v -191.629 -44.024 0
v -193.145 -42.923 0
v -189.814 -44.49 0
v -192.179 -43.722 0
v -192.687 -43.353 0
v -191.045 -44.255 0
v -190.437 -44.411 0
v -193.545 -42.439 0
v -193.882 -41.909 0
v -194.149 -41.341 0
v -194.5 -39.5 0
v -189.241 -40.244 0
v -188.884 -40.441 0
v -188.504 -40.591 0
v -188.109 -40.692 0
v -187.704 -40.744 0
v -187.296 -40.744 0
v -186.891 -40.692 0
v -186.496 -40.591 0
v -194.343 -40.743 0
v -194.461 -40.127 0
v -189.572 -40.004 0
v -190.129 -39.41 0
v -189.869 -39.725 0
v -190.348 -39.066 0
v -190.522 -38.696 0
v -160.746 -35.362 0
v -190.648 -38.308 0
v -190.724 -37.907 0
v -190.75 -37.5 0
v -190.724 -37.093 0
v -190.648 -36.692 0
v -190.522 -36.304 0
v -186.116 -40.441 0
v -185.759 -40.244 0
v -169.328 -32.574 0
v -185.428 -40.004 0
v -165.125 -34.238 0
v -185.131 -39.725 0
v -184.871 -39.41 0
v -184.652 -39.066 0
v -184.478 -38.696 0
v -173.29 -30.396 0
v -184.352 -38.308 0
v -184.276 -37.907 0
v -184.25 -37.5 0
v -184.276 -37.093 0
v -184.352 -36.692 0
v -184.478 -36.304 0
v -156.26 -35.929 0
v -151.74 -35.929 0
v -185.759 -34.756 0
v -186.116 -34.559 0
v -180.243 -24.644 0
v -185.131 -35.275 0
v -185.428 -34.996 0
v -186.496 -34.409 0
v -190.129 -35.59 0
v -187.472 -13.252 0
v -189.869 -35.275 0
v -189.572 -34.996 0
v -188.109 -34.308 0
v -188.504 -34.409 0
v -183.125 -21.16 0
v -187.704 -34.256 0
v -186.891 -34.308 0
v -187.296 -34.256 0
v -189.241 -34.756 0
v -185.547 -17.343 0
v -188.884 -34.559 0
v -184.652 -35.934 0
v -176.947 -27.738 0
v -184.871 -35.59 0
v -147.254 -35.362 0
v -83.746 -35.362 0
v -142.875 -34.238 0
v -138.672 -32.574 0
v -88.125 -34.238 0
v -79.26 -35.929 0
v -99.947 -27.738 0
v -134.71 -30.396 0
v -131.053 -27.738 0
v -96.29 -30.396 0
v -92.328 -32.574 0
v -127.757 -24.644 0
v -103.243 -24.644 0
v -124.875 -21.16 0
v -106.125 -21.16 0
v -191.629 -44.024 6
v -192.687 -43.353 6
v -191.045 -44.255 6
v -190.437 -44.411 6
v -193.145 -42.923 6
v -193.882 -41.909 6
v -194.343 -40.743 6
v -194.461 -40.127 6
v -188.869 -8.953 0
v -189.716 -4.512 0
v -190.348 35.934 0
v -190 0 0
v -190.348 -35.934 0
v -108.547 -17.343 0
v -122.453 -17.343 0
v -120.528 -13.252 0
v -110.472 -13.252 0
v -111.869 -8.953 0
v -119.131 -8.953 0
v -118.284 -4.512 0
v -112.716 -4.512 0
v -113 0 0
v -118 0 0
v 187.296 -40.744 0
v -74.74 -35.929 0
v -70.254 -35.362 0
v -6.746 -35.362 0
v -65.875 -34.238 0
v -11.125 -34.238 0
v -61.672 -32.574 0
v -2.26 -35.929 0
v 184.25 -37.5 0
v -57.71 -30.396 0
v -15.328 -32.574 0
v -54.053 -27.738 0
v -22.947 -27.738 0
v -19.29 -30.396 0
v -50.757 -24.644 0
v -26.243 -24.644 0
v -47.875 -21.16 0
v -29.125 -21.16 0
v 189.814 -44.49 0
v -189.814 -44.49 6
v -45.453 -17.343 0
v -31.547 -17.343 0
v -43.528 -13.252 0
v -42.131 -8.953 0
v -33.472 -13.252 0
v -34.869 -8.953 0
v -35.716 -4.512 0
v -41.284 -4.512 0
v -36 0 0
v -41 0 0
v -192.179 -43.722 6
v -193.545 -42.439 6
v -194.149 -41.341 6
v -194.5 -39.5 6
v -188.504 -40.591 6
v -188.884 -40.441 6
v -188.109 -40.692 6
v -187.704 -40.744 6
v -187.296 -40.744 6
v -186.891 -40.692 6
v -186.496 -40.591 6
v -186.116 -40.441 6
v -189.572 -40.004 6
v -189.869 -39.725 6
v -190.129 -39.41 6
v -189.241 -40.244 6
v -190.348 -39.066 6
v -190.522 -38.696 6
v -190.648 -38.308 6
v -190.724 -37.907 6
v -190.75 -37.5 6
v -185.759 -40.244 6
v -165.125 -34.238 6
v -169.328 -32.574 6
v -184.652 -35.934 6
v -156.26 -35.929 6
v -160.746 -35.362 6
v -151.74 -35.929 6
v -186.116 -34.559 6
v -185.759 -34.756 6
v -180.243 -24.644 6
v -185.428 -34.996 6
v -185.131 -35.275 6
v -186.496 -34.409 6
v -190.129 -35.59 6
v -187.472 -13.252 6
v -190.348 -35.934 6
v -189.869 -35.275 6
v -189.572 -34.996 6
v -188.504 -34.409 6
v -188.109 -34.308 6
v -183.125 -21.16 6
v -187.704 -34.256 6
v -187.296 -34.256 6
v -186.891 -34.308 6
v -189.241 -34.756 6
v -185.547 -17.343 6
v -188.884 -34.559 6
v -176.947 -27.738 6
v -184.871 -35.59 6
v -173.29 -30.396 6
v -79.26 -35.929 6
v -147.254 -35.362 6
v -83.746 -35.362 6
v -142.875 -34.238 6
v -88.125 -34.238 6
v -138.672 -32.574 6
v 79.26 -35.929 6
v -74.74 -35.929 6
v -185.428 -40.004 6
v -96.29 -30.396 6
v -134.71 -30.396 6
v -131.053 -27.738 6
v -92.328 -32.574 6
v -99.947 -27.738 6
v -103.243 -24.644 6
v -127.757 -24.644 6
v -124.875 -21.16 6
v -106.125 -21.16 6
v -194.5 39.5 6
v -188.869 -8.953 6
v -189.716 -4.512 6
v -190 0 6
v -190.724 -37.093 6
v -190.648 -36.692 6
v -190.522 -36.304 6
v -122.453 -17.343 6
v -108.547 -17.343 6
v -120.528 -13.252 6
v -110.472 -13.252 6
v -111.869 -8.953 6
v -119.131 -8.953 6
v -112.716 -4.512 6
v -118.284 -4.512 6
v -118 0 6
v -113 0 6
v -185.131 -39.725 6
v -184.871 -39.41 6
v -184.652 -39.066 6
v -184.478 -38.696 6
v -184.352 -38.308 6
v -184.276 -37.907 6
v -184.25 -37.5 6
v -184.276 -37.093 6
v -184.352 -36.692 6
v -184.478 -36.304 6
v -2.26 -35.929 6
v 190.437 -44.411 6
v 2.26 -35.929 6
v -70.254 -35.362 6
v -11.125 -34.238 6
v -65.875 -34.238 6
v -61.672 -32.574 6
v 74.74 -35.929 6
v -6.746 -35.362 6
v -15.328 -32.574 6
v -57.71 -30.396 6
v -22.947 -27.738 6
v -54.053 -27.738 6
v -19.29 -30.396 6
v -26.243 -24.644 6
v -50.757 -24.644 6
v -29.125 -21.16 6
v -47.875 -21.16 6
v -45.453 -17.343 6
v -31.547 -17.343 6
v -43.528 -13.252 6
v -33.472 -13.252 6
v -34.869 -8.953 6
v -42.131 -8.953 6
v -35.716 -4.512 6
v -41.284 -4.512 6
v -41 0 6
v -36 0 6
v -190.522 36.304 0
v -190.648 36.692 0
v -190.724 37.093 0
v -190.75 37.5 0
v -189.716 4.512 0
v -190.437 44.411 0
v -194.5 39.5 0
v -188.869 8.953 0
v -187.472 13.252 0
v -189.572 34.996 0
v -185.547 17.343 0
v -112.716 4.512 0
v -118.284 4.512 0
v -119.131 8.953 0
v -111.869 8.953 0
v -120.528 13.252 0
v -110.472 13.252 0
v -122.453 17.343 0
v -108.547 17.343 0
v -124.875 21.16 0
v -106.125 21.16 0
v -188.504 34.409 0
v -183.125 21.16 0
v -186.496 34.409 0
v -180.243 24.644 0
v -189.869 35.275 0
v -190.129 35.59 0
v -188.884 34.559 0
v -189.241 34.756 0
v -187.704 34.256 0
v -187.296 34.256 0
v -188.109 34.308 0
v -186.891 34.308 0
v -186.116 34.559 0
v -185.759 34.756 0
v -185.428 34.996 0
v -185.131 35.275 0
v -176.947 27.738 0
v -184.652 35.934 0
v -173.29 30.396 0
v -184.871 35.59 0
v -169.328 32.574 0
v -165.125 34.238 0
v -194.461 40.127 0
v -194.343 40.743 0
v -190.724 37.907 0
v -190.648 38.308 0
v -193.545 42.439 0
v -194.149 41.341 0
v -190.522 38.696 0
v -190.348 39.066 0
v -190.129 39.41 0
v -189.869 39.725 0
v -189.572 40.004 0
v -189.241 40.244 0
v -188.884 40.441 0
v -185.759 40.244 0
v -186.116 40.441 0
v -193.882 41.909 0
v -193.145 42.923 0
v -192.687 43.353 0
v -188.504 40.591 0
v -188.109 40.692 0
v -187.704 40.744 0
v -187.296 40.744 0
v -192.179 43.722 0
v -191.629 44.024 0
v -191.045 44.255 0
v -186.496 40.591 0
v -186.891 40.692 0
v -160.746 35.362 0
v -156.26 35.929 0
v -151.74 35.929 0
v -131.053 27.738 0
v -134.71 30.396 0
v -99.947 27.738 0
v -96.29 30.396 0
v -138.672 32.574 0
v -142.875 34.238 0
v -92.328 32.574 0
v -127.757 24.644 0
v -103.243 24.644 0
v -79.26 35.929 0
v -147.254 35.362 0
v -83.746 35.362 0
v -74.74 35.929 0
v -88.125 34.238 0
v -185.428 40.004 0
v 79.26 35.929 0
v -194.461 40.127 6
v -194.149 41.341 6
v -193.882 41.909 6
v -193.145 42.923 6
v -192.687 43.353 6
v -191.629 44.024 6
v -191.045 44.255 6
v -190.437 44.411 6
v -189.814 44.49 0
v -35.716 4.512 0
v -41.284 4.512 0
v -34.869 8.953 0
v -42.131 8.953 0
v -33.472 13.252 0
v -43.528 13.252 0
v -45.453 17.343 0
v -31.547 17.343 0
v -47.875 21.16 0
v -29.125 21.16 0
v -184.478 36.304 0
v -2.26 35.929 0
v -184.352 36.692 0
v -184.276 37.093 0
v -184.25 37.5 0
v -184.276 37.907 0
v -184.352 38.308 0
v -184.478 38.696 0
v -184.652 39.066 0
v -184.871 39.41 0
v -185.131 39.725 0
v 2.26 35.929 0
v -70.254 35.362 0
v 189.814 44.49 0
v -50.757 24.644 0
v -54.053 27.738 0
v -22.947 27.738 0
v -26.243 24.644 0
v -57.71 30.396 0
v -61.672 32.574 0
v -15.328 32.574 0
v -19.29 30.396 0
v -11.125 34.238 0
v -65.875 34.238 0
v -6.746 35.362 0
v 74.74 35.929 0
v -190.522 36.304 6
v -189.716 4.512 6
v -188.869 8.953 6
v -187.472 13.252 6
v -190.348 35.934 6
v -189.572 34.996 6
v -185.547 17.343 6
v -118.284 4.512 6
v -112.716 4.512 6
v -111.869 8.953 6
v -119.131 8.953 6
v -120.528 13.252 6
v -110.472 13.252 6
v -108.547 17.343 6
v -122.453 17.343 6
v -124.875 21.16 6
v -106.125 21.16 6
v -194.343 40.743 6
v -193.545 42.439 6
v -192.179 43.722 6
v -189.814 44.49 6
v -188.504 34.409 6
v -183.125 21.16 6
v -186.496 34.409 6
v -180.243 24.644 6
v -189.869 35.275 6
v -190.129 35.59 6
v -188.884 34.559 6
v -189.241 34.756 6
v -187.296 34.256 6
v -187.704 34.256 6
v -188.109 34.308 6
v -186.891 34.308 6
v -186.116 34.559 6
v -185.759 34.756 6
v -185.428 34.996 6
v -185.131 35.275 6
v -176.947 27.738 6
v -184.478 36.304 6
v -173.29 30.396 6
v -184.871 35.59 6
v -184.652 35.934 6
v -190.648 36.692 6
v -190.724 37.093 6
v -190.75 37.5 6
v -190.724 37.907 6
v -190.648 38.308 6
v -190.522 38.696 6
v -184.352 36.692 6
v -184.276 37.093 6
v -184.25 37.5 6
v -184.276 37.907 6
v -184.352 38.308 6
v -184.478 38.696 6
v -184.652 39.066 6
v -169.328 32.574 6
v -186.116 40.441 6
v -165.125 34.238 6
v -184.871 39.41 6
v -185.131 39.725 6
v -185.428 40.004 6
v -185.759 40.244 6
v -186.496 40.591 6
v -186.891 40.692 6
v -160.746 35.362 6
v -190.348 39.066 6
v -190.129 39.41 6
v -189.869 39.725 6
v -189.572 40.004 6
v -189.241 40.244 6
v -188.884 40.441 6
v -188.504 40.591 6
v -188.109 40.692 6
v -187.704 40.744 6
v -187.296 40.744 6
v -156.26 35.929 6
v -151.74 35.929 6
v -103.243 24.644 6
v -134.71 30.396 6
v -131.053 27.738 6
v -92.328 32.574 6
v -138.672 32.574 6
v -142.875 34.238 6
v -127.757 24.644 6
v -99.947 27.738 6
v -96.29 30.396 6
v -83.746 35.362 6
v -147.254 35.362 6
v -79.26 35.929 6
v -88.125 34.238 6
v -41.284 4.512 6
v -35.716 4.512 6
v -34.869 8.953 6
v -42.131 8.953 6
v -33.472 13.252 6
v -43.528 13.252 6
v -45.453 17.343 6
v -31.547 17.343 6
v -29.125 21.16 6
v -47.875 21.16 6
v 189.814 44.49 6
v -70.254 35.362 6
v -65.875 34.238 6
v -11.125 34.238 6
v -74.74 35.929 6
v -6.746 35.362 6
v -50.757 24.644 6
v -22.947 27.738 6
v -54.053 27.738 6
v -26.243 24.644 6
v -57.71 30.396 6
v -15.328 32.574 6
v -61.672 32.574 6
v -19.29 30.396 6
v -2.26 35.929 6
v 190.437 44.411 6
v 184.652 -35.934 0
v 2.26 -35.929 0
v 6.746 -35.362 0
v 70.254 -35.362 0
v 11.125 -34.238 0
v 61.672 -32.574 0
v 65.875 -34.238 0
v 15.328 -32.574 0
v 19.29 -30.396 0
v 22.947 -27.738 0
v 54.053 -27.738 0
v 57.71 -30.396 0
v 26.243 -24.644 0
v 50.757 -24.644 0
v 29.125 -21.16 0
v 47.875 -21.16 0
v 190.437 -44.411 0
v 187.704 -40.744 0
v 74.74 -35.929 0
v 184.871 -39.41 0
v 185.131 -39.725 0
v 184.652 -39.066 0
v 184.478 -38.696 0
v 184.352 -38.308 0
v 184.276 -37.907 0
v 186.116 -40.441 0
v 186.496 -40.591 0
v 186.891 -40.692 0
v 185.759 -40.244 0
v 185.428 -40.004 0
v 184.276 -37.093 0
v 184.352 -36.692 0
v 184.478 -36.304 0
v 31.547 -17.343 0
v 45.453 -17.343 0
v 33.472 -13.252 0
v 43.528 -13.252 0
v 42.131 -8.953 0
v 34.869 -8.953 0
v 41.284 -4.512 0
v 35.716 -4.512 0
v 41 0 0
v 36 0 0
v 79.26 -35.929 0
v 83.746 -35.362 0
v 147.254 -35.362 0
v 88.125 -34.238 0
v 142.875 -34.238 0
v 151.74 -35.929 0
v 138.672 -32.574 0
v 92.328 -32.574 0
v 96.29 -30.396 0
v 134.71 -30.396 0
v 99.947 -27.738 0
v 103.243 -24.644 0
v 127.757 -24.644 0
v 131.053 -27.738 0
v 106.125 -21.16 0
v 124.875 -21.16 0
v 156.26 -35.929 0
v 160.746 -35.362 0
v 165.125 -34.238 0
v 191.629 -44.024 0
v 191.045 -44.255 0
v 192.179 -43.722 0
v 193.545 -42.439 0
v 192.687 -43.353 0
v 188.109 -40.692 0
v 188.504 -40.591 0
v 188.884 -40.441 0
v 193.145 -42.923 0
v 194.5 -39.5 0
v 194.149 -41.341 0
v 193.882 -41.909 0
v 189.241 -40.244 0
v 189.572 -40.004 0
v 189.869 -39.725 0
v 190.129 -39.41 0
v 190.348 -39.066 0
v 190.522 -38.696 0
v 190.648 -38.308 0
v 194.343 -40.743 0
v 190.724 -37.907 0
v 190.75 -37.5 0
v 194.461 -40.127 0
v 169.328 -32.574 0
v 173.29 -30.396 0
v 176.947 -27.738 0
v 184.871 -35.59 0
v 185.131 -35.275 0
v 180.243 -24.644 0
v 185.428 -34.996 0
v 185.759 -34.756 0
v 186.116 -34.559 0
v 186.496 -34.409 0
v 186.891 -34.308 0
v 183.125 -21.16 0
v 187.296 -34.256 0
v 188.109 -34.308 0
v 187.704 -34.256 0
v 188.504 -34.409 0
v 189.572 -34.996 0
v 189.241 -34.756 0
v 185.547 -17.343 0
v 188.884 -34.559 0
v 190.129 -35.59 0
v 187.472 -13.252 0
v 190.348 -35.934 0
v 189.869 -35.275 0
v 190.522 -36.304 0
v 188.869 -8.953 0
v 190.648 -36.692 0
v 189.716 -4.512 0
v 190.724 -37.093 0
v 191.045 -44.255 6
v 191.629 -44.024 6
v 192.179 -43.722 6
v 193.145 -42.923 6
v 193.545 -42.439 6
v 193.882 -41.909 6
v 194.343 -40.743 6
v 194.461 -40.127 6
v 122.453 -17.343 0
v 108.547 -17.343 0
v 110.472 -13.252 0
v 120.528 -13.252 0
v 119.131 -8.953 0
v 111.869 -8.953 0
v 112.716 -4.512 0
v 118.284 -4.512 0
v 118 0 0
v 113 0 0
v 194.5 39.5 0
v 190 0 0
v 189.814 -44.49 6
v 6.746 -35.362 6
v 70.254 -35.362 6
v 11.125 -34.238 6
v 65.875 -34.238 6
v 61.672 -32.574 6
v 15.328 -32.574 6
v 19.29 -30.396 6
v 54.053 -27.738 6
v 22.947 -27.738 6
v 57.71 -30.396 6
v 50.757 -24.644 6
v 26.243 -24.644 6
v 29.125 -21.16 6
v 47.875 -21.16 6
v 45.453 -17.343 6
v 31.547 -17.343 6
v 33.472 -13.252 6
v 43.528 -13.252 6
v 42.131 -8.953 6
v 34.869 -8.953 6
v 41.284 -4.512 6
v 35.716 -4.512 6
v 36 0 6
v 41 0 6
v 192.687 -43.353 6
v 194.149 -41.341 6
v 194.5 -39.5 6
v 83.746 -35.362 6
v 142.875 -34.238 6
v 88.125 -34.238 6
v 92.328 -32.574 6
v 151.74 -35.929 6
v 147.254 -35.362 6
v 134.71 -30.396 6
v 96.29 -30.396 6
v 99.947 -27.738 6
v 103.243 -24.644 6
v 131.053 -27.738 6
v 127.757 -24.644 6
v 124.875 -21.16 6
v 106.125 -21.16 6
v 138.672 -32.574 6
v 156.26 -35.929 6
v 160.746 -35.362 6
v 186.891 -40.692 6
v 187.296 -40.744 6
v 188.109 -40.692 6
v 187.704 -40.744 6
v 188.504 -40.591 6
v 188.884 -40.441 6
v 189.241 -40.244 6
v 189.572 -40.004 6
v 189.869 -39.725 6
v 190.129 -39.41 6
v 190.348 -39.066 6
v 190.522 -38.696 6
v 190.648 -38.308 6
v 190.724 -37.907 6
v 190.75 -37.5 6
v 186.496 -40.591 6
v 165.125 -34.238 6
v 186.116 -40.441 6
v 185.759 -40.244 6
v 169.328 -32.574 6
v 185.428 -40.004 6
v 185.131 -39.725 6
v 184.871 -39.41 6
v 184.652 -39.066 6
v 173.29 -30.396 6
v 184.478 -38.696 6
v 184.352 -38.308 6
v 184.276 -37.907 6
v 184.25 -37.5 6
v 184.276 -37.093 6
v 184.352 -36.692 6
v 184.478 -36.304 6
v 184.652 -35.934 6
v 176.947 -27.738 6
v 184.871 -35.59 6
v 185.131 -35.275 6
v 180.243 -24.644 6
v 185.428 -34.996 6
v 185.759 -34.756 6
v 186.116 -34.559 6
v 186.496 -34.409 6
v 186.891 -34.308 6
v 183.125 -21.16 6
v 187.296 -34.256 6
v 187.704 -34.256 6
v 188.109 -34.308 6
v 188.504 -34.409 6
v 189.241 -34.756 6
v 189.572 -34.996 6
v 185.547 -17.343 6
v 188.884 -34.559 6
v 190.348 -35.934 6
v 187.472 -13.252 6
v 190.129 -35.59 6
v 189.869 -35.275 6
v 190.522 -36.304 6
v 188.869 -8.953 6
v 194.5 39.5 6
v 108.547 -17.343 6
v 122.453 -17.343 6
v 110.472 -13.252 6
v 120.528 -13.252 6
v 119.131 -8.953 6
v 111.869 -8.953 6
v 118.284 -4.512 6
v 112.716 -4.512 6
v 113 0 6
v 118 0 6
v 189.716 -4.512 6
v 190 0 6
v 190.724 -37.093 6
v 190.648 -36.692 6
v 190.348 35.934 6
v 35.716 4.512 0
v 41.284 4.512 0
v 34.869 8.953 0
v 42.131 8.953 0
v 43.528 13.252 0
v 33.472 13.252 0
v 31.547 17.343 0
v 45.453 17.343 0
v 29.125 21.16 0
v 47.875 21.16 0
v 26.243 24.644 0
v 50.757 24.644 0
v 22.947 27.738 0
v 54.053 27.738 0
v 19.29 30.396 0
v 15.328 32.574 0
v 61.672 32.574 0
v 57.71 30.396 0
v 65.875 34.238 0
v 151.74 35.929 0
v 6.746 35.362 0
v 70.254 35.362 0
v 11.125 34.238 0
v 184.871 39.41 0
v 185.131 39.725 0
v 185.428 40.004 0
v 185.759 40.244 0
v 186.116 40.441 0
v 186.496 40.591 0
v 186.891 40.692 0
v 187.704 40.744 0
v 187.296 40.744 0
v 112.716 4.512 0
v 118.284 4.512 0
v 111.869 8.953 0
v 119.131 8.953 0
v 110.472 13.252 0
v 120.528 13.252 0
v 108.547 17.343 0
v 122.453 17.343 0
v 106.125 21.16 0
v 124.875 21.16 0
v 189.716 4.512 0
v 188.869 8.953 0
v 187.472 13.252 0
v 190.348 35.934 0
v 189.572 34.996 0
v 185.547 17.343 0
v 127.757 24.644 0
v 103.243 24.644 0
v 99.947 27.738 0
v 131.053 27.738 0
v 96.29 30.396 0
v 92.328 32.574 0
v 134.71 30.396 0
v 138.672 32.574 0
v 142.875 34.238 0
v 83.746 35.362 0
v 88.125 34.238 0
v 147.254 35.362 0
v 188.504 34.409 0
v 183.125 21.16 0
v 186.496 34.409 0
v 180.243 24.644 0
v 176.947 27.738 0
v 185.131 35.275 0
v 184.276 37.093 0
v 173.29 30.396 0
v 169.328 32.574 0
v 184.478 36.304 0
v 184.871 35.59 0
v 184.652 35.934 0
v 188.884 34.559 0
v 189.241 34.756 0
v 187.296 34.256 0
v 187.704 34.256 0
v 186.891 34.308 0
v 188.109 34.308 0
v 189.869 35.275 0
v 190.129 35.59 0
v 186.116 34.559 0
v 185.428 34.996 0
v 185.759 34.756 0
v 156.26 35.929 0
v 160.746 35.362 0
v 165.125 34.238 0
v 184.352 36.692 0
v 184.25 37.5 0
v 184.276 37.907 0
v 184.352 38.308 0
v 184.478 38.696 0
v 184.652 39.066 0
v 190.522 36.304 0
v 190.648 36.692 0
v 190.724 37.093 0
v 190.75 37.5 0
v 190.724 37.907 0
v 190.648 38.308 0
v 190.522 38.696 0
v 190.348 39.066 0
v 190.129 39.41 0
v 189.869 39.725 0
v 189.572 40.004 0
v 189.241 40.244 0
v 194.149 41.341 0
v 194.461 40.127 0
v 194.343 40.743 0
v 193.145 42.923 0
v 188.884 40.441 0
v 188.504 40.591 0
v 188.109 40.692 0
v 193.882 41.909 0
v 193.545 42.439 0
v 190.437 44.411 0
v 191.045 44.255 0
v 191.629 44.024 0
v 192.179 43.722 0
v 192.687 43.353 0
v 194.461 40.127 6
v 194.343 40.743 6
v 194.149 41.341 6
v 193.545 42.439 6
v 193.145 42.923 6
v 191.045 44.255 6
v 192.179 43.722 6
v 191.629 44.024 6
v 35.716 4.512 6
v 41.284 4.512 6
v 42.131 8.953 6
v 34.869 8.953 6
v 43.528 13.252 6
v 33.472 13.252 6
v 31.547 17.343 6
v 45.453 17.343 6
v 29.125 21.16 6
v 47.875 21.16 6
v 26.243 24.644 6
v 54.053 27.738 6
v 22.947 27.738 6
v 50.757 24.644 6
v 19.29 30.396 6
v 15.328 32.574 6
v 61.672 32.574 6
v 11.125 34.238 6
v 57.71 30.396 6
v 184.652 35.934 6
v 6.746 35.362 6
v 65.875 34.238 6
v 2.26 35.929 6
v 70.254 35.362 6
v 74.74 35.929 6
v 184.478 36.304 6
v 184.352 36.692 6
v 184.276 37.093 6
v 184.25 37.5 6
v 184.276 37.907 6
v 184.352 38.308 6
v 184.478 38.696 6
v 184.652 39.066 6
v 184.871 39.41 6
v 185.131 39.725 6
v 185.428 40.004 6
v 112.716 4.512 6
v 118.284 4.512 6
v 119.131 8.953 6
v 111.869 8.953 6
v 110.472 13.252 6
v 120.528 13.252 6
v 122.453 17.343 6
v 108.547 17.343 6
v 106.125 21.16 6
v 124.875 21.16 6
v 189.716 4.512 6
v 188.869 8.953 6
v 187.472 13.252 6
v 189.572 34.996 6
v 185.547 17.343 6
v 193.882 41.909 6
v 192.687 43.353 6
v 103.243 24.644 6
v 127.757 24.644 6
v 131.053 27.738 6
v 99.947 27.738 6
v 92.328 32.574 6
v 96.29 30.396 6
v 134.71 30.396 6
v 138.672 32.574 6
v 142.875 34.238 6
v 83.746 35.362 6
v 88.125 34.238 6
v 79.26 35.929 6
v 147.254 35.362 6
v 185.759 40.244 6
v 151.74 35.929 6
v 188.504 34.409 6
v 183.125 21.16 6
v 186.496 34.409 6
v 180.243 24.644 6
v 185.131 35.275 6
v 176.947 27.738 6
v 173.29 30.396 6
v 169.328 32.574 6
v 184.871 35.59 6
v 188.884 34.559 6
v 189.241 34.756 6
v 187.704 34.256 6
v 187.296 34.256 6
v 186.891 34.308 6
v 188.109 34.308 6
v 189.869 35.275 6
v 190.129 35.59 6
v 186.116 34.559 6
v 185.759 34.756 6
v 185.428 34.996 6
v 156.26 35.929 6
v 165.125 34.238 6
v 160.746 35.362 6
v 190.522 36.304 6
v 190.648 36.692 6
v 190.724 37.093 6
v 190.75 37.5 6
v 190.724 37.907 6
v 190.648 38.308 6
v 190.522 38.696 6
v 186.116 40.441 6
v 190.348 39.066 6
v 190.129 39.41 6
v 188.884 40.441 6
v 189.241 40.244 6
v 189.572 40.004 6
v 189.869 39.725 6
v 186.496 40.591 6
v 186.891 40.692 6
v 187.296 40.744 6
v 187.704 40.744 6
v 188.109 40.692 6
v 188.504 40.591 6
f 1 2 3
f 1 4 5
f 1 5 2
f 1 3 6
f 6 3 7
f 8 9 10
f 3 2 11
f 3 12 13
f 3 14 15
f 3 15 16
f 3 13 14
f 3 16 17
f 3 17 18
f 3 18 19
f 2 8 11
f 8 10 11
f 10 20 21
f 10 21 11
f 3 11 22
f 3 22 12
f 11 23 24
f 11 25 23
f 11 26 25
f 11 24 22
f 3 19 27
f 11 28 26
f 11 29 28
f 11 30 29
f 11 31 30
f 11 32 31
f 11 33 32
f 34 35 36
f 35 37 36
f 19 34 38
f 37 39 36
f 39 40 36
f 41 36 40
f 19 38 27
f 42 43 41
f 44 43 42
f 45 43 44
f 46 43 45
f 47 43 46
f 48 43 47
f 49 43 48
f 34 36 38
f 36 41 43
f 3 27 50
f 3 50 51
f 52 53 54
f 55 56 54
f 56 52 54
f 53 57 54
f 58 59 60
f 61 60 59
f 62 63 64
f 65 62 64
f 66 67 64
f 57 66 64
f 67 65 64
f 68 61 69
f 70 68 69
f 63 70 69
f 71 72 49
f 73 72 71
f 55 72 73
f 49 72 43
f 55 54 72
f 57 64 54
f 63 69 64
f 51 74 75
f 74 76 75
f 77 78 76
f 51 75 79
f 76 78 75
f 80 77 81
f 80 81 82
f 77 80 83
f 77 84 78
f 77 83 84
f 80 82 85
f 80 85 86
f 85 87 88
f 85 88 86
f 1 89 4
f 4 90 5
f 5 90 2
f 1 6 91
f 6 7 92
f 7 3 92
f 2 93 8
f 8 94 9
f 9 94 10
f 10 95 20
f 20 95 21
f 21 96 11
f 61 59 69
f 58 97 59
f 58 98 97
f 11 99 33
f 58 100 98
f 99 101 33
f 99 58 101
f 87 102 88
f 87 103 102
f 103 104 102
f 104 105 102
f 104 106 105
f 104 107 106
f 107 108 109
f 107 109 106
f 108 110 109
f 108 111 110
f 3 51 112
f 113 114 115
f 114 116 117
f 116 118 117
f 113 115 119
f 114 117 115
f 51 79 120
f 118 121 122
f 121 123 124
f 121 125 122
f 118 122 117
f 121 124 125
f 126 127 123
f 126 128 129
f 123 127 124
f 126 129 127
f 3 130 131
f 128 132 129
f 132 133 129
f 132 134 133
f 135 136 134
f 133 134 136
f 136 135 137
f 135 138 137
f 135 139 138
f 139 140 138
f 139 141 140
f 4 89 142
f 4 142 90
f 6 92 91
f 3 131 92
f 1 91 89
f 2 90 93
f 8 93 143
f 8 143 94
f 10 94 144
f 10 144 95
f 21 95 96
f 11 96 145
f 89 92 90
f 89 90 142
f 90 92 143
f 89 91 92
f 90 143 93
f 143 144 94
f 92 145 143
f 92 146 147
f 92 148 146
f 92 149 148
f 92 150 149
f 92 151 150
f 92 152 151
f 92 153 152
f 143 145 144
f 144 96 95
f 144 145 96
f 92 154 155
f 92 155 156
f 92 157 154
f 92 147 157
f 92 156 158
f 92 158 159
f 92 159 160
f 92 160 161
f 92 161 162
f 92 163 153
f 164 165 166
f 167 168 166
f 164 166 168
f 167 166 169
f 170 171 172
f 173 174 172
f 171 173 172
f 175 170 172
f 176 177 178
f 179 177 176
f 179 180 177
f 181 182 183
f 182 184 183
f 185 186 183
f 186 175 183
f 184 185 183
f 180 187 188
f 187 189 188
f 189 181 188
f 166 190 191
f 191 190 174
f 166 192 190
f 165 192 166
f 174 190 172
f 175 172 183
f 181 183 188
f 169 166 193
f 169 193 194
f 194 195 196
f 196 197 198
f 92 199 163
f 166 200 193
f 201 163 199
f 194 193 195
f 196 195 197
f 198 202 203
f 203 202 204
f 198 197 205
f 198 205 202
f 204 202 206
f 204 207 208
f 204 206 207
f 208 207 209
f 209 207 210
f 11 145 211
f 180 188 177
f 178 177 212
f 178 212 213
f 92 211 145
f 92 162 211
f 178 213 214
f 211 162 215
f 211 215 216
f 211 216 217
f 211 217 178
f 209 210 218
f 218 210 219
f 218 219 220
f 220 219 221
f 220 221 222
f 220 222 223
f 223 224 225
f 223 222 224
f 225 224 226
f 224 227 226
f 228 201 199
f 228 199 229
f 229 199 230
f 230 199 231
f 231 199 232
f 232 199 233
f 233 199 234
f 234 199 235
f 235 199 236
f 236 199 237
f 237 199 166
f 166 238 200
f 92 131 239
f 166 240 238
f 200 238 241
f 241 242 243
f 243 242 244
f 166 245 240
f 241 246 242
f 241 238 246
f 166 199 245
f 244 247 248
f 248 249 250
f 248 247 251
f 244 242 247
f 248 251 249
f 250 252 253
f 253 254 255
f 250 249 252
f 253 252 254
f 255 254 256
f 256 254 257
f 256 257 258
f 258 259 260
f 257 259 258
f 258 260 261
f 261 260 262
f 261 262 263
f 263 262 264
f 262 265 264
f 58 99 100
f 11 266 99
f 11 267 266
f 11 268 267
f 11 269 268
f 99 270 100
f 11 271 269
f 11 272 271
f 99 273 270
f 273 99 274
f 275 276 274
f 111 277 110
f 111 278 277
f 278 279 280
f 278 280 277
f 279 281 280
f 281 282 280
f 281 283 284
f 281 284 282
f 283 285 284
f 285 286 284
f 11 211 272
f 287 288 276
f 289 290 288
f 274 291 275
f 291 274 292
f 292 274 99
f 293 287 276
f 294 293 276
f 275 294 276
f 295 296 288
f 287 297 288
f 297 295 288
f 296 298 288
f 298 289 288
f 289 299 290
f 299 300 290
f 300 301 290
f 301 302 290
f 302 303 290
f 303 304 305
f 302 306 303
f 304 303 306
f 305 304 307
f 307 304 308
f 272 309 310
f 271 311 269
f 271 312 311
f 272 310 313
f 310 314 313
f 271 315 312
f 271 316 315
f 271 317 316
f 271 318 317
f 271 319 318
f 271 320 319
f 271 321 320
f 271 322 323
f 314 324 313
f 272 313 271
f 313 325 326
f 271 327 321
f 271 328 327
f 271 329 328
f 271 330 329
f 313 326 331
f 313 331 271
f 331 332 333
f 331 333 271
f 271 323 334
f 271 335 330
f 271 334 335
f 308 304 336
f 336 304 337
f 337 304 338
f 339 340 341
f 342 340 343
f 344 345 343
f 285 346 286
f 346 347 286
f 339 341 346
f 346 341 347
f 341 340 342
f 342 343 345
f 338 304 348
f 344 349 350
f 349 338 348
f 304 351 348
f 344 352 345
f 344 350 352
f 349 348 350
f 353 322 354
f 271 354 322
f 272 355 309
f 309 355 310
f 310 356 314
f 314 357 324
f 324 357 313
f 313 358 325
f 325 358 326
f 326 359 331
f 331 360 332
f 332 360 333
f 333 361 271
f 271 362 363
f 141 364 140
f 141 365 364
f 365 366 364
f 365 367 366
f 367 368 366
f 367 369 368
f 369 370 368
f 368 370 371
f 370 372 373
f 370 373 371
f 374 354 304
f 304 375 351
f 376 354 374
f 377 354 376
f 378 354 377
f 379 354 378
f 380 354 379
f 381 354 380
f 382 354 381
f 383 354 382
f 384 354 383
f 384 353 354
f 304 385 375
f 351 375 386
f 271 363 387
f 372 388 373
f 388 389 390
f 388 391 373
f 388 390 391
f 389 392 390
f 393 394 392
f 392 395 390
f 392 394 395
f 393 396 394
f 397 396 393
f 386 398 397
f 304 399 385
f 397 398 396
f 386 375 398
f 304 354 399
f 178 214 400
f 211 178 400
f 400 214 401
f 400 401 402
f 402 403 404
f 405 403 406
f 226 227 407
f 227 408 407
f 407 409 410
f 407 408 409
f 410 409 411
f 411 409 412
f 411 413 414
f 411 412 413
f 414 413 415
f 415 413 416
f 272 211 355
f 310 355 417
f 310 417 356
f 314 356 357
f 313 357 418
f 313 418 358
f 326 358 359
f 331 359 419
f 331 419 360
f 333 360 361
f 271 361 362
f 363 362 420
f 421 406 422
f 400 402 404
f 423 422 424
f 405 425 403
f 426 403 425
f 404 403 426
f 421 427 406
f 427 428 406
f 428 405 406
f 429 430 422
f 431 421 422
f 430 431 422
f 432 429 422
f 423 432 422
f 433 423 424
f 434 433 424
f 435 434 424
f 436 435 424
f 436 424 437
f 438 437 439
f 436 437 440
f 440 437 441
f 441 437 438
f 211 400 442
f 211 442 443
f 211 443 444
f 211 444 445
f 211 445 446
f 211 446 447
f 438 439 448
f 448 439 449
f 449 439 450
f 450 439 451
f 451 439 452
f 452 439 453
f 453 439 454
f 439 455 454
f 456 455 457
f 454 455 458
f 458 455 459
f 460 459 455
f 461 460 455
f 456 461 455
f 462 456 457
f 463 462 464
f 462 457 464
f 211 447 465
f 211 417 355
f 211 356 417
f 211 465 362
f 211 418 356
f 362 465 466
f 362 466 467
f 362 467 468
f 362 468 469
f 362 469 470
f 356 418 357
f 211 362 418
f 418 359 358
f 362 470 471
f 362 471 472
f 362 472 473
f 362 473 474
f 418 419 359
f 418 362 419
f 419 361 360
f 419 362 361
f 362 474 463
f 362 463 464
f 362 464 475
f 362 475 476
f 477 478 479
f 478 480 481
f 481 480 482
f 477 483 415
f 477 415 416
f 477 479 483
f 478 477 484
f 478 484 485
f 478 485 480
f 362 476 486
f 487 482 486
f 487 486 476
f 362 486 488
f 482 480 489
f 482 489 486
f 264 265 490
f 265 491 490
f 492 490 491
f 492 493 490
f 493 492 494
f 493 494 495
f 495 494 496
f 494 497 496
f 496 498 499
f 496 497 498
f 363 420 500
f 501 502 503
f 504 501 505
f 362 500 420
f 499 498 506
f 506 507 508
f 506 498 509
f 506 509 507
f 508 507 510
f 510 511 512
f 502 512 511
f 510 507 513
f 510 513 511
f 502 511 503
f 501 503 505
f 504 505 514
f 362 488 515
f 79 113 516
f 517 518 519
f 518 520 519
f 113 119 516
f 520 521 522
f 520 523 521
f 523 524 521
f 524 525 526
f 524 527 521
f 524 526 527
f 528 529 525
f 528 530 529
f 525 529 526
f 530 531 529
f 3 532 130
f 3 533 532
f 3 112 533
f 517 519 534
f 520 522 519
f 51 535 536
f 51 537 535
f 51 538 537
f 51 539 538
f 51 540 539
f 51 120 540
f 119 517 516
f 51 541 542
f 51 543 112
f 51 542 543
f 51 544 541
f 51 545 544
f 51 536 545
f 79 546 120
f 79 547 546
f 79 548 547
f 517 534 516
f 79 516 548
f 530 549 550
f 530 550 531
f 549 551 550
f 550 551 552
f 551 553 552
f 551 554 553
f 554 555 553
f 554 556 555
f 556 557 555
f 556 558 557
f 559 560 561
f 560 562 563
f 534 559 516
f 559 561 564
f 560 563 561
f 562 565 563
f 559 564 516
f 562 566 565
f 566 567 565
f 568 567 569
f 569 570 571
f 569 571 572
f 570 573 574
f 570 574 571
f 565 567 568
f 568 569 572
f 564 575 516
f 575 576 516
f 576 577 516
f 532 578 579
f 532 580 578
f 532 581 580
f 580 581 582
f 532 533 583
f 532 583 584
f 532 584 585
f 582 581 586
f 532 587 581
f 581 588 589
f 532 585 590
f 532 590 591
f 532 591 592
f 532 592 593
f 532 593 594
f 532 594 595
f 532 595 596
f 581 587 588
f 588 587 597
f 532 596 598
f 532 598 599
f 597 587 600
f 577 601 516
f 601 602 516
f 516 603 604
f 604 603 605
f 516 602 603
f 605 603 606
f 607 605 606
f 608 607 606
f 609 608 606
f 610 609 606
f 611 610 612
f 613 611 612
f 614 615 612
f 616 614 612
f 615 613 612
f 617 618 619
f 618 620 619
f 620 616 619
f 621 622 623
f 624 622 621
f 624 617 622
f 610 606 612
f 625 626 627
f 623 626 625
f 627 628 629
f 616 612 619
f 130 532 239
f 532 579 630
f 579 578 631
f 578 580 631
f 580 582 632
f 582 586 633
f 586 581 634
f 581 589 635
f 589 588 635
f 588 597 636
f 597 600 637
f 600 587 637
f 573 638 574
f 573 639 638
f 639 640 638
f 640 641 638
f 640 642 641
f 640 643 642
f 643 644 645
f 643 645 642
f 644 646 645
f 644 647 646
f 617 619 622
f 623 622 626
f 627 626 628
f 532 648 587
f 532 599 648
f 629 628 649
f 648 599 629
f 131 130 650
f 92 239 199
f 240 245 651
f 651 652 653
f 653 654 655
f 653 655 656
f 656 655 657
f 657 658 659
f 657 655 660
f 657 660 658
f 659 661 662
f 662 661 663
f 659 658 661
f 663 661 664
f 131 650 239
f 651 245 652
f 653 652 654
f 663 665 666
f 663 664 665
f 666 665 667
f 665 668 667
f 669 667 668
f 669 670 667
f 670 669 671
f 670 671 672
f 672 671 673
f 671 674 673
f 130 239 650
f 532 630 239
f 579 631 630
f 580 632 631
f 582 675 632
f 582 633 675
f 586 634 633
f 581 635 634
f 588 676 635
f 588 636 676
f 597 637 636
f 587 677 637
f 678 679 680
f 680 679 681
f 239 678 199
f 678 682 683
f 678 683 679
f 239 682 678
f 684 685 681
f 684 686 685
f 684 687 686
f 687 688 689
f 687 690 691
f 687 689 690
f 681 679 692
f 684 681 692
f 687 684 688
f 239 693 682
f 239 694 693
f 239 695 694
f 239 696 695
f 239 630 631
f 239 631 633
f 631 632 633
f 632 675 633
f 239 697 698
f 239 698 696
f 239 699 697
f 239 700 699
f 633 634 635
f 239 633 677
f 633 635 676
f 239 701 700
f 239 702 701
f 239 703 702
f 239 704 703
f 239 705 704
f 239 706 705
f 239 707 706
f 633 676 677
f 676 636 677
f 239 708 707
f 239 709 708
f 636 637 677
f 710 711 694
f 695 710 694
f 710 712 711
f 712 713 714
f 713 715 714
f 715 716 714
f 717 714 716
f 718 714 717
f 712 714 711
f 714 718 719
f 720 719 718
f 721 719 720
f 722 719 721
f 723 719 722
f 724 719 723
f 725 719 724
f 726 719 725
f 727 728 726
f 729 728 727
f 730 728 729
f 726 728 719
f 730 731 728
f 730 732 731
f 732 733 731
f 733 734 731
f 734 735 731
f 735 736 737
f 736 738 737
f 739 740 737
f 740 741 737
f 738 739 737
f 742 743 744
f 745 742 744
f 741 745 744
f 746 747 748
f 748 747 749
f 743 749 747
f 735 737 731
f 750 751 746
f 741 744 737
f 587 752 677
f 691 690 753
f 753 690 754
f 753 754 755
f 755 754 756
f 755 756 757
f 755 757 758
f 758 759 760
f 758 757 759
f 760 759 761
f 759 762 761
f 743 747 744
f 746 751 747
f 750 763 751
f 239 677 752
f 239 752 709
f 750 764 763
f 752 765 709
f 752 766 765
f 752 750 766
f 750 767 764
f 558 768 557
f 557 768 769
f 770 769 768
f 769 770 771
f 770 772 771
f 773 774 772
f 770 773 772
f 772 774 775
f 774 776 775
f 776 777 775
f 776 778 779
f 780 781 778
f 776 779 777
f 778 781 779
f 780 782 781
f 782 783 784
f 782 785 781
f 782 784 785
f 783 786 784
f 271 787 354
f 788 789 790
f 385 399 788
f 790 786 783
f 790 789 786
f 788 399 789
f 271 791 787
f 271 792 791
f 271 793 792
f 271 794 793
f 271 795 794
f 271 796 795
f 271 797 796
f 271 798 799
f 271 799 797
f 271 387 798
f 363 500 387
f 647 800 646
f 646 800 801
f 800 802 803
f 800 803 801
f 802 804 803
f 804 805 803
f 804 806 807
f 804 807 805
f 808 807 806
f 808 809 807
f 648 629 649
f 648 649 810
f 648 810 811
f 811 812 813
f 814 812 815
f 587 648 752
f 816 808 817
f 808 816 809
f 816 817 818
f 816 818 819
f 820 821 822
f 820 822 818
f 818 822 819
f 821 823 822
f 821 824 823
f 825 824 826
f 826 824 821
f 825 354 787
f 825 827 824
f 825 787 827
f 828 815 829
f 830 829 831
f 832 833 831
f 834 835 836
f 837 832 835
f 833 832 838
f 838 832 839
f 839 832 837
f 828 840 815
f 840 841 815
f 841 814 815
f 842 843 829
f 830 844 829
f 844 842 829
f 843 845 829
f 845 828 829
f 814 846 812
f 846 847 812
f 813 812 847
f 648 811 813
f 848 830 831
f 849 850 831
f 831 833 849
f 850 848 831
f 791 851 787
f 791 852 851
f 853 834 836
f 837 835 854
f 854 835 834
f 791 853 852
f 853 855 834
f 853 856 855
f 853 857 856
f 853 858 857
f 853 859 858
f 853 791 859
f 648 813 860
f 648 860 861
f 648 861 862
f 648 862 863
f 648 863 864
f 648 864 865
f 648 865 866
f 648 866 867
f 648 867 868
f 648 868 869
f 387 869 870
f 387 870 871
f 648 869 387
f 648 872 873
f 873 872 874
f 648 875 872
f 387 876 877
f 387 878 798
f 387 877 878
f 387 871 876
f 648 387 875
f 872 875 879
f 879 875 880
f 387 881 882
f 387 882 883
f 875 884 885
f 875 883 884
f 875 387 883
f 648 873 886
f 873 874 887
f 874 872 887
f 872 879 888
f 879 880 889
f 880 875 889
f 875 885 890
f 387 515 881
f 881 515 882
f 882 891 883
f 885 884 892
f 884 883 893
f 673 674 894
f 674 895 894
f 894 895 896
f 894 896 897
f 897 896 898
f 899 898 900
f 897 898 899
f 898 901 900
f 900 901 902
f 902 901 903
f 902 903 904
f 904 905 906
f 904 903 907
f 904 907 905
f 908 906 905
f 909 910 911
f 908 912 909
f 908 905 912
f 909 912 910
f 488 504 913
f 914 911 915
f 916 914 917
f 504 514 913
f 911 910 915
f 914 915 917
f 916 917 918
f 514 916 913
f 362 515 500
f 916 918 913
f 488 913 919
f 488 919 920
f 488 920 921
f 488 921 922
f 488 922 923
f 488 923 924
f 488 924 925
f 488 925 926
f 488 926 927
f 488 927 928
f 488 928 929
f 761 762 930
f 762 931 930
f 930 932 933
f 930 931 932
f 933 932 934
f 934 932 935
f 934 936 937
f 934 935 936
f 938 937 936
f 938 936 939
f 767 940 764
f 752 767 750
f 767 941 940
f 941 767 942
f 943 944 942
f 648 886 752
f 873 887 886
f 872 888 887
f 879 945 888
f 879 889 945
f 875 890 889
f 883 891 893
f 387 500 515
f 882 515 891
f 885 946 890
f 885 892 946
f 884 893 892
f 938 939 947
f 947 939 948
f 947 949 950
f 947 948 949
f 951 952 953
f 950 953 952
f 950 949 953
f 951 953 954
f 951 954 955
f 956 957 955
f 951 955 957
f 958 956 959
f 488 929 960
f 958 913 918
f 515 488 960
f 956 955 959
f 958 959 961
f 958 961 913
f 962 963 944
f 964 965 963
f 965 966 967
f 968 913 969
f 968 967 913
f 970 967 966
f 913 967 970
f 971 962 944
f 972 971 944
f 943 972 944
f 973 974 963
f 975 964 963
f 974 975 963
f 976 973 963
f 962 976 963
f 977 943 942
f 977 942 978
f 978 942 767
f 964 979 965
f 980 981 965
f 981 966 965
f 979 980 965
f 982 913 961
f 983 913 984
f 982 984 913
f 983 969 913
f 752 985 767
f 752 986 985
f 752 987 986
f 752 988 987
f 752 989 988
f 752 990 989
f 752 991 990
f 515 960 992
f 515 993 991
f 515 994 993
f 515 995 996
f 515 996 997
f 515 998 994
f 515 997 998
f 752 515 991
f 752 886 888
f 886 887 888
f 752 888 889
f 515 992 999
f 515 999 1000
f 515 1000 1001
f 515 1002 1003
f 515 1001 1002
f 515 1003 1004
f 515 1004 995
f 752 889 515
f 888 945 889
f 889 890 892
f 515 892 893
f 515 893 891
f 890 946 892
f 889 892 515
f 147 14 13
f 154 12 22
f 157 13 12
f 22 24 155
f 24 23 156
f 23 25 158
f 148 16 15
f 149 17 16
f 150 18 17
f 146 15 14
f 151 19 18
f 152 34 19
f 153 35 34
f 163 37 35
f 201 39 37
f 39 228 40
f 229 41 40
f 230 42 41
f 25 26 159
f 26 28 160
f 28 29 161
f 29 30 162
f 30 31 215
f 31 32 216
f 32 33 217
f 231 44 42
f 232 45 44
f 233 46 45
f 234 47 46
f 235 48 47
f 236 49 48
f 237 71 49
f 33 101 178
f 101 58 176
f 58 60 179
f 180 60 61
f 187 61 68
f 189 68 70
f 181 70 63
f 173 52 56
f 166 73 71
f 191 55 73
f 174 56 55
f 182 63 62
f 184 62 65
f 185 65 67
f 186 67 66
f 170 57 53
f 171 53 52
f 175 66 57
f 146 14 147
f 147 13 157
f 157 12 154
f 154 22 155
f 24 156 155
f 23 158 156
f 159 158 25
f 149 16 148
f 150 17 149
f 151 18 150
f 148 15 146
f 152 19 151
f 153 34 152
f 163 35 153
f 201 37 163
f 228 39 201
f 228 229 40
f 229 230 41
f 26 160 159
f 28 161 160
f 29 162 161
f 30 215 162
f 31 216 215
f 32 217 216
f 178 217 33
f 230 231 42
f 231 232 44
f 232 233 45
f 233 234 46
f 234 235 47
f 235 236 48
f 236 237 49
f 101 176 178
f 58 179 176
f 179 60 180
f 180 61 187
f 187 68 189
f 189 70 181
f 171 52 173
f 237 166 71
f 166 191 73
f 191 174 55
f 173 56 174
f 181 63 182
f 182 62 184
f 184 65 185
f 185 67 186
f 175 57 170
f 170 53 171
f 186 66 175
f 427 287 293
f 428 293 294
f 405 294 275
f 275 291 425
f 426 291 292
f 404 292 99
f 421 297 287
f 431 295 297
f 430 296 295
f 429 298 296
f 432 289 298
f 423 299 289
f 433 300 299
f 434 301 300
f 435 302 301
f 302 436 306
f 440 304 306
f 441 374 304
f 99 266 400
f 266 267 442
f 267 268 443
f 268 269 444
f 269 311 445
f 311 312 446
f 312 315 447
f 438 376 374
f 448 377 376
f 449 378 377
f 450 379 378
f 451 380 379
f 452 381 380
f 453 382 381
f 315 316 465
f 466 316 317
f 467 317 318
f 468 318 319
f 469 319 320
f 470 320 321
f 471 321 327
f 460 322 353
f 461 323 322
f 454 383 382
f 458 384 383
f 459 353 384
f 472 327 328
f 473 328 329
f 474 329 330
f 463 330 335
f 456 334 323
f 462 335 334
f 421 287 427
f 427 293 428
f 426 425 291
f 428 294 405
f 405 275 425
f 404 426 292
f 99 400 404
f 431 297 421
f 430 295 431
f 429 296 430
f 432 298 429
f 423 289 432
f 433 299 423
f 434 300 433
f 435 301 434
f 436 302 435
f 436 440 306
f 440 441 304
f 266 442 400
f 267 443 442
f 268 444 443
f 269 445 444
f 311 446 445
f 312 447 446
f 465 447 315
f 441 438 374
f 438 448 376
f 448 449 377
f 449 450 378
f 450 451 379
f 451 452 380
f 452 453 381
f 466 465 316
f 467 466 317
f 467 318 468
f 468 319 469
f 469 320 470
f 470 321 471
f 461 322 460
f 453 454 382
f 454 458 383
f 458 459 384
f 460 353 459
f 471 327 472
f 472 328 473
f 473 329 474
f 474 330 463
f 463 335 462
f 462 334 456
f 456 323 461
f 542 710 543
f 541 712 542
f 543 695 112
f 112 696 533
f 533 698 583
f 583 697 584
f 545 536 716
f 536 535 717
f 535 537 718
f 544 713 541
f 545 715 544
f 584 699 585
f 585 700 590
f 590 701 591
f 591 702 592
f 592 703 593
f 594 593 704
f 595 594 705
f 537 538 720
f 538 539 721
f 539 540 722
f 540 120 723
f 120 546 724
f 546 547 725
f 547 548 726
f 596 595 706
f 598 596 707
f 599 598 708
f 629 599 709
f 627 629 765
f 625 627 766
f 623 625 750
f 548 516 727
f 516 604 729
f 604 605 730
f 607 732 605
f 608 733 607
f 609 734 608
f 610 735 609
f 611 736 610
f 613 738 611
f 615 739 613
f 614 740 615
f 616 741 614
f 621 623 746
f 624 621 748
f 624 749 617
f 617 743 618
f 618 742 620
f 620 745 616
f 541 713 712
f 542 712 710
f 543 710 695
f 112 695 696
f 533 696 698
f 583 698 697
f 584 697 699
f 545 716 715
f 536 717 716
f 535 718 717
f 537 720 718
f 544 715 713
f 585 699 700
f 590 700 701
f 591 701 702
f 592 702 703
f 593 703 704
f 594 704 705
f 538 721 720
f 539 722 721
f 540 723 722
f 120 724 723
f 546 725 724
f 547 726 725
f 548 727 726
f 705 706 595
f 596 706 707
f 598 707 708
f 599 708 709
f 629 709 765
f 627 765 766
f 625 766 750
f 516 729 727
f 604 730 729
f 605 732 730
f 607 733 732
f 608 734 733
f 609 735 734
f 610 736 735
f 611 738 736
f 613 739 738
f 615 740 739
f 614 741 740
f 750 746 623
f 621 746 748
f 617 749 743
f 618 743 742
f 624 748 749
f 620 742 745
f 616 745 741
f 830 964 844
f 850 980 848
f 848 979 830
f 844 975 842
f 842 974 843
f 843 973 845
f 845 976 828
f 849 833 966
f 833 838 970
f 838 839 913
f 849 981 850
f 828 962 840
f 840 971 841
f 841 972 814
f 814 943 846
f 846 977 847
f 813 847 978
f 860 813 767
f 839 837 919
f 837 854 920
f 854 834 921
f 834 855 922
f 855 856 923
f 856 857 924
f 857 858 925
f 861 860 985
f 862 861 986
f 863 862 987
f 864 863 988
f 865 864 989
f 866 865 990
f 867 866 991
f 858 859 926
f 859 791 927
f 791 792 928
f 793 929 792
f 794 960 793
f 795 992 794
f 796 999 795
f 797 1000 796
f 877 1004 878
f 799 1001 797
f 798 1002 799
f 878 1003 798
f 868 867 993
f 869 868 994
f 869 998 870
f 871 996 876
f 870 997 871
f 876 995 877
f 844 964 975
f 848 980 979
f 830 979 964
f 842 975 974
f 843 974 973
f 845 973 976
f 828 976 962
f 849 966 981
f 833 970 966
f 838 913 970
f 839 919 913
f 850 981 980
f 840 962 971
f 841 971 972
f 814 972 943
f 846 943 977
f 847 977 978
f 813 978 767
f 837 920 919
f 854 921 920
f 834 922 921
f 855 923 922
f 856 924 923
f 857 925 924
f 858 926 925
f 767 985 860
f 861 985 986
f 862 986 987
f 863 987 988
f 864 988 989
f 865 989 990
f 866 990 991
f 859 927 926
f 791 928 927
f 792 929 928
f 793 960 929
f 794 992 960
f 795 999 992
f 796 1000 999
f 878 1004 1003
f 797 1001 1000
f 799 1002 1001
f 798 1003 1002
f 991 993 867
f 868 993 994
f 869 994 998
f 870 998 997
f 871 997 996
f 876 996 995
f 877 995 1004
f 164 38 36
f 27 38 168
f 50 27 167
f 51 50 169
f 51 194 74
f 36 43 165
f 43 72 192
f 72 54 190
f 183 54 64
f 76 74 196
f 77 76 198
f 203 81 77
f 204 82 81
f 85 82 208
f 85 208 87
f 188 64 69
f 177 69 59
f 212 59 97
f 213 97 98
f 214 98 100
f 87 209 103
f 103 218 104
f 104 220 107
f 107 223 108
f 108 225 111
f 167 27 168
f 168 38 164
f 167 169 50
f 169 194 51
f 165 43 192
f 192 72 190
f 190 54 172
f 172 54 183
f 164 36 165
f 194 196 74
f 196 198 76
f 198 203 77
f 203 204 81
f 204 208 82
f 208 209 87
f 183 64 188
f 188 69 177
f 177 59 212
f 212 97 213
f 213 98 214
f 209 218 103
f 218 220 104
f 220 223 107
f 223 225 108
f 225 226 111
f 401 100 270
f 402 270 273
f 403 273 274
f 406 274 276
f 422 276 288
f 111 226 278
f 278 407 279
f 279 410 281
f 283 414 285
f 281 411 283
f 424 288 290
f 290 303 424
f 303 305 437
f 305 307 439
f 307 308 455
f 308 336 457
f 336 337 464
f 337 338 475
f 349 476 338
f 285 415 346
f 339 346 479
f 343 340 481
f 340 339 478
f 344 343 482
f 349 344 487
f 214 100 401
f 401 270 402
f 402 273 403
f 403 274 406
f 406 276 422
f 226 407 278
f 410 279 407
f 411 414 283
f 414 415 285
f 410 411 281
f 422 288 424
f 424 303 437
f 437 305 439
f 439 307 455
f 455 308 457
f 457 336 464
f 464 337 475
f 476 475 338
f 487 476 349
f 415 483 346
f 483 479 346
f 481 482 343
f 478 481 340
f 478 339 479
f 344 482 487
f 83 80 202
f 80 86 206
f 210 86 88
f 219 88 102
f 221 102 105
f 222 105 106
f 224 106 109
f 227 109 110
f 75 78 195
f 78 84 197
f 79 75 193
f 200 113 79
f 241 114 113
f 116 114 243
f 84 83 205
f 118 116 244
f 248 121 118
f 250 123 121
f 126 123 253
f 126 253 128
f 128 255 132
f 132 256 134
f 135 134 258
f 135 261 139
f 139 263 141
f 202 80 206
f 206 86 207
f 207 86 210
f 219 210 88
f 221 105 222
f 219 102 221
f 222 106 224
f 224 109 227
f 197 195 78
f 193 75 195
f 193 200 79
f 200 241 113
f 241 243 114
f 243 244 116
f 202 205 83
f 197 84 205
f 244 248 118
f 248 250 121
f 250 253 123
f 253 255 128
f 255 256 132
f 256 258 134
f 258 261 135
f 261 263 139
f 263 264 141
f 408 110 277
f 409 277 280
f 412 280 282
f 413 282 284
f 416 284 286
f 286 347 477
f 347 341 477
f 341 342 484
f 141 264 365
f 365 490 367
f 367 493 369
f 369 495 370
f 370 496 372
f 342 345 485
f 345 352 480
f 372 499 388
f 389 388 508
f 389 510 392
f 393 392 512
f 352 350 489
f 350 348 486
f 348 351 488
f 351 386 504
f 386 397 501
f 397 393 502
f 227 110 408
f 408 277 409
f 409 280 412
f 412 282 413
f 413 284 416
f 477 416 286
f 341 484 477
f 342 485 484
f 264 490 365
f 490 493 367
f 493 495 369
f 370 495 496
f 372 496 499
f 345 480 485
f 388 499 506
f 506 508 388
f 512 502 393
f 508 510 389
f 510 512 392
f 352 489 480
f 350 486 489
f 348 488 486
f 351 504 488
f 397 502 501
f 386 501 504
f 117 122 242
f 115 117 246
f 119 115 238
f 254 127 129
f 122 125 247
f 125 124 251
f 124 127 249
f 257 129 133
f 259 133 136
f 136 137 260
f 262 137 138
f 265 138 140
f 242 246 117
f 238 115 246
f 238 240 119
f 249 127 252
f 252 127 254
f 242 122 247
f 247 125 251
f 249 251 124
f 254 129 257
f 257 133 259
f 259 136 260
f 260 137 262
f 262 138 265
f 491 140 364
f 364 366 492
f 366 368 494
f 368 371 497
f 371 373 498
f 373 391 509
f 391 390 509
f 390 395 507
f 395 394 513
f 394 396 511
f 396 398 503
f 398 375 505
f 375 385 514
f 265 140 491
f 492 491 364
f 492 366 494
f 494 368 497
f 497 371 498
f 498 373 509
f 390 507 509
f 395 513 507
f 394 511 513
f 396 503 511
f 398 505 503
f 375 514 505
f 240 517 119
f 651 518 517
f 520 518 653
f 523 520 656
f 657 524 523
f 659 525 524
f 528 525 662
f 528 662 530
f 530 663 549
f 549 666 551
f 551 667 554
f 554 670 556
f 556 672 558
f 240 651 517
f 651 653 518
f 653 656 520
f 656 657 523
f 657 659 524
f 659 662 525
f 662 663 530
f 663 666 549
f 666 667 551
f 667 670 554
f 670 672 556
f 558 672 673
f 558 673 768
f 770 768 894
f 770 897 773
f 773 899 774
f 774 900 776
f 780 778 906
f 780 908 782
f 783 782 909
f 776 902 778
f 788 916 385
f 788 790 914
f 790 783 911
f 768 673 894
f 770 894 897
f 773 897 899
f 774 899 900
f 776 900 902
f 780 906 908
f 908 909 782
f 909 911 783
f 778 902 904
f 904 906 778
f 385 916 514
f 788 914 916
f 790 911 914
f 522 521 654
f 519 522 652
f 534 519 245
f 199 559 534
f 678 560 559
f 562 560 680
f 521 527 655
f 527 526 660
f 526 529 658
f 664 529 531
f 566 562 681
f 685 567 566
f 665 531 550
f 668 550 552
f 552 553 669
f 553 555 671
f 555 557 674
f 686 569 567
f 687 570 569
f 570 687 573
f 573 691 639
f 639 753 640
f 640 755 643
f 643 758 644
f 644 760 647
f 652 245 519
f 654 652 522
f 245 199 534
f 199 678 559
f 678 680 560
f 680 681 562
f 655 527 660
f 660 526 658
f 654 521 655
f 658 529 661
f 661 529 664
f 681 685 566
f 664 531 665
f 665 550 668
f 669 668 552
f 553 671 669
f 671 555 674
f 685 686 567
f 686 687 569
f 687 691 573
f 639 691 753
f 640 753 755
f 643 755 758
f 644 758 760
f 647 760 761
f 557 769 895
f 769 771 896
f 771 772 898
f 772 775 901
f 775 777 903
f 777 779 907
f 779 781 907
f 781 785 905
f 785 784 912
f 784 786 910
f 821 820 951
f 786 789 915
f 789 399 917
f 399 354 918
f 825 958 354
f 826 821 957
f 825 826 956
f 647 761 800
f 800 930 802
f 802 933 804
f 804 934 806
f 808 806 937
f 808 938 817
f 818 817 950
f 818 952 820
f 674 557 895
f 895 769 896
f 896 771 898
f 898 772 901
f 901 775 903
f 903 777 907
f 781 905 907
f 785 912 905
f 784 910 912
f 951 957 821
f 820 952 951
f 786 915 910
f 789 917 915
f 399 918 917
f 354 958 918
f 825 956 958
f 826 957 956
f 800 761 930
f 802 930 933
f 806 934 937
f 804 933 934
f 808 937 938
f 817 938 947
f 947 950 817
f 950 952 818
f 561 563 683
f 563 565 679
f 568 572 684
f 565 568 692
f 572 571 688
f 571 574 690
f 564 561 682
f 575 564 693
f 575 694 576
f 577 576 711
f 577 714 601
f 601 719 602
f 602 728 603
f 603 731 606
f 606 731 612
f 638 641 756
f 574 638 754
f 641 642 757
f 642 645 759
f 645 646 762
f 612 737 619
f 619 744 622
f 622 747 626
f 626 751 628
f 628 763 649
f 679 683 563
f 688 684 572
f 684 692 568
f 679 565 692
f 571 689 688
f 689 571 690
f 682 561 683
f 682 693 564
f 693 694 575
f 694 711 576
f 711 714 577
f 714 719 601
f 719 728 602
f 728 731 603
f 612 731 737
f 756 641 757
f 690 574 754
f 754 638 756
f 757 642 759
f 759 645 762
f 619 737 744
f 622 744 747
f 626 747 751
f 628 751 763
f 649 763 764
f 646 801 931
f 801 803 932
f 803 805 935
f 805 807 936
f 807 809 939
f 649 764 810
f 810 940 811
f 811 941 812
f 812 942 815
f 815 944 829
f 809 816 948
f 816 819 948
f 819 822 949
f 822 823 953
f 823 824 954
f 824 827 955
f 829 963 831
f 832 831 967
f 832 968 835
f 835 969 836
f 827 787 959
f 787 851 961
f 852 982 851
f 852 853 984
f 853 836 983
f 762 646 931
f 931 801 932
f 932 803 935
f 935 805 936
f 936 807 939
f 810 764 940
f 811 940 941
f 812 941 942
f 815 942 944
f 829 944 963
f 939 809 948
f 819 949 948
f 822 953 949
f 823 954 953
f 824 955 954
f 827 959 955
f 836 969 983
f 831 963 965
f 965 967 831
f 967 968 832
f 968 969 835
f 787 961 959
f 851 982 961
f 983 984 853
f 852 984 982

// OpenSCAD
$fn = 50;

difference() {
	union() {
		hull() {
			translate(v = [-189.5, 39.5, 0]) {
				cylinder(h = 6, r = 5);
			}
			translate(v = [189.5, 39.5, 0]) {
				cylinder(h = 6, r = 5);
			}
			translate(v = [-189.5, -39.5, 0]) {
				cylinder(h = 6, r = 5);
			}
			translate(v = [189.5, -39.5, 0]) {
				cylinder(h = 6, r = 5);
			}
		}
	}
	union() {
		translate(v = [-187.5, -37.5, -100.0]) {
			cylinder(h = 200, r = 3.25);
		}
		translate(v = [-187.5, 37.5, -100.0]) {
			cylinder(h = 200, r = 3.25);
		}
		translate(v = [187.5, -37.5, -100.0]) {
			cylinder(h = 200, r = 3.25);
		}
		translate(v = [187.5, 37.5, -100.0]) {
			cylinder(h = 200, r = 3.25);
		}
		translate(v = [-187.5, -37.5, -100.0]) {
			cylinder(h = 200, r = 1.8);
		}
		translate(v = [-187.5, 37.5, -100.0]) {
			cylinder(h = 200, r = 1.8);
		}
		translate(v = [187.5, -37.5, -100.0]) {
			cylinder(h = 200, r = 1.8);
		}
		translate(v = [187.5, 37.5, -100.0]) {
			cylinder(h = 200, r = 1.8);
		}
		translate(v = [-154.0, 0, 0.0]) {
			cylinder(h = 6, r = 36.0);
		}
		translate(v = [-77.0, 0, 0.0]) {
			cylinder(h = 6, r = 36.0);
		}
		cylinder(h = 6, r = 36.0);
		translate(v = [77.0, 0, 0.0]) {
			cylinder(h = 6, r = 36.0);
		}
		translate(v = [154.0, 0, 0.0]) {
			cylinder(h = 6, r = 36.0);
		}
	}
}
